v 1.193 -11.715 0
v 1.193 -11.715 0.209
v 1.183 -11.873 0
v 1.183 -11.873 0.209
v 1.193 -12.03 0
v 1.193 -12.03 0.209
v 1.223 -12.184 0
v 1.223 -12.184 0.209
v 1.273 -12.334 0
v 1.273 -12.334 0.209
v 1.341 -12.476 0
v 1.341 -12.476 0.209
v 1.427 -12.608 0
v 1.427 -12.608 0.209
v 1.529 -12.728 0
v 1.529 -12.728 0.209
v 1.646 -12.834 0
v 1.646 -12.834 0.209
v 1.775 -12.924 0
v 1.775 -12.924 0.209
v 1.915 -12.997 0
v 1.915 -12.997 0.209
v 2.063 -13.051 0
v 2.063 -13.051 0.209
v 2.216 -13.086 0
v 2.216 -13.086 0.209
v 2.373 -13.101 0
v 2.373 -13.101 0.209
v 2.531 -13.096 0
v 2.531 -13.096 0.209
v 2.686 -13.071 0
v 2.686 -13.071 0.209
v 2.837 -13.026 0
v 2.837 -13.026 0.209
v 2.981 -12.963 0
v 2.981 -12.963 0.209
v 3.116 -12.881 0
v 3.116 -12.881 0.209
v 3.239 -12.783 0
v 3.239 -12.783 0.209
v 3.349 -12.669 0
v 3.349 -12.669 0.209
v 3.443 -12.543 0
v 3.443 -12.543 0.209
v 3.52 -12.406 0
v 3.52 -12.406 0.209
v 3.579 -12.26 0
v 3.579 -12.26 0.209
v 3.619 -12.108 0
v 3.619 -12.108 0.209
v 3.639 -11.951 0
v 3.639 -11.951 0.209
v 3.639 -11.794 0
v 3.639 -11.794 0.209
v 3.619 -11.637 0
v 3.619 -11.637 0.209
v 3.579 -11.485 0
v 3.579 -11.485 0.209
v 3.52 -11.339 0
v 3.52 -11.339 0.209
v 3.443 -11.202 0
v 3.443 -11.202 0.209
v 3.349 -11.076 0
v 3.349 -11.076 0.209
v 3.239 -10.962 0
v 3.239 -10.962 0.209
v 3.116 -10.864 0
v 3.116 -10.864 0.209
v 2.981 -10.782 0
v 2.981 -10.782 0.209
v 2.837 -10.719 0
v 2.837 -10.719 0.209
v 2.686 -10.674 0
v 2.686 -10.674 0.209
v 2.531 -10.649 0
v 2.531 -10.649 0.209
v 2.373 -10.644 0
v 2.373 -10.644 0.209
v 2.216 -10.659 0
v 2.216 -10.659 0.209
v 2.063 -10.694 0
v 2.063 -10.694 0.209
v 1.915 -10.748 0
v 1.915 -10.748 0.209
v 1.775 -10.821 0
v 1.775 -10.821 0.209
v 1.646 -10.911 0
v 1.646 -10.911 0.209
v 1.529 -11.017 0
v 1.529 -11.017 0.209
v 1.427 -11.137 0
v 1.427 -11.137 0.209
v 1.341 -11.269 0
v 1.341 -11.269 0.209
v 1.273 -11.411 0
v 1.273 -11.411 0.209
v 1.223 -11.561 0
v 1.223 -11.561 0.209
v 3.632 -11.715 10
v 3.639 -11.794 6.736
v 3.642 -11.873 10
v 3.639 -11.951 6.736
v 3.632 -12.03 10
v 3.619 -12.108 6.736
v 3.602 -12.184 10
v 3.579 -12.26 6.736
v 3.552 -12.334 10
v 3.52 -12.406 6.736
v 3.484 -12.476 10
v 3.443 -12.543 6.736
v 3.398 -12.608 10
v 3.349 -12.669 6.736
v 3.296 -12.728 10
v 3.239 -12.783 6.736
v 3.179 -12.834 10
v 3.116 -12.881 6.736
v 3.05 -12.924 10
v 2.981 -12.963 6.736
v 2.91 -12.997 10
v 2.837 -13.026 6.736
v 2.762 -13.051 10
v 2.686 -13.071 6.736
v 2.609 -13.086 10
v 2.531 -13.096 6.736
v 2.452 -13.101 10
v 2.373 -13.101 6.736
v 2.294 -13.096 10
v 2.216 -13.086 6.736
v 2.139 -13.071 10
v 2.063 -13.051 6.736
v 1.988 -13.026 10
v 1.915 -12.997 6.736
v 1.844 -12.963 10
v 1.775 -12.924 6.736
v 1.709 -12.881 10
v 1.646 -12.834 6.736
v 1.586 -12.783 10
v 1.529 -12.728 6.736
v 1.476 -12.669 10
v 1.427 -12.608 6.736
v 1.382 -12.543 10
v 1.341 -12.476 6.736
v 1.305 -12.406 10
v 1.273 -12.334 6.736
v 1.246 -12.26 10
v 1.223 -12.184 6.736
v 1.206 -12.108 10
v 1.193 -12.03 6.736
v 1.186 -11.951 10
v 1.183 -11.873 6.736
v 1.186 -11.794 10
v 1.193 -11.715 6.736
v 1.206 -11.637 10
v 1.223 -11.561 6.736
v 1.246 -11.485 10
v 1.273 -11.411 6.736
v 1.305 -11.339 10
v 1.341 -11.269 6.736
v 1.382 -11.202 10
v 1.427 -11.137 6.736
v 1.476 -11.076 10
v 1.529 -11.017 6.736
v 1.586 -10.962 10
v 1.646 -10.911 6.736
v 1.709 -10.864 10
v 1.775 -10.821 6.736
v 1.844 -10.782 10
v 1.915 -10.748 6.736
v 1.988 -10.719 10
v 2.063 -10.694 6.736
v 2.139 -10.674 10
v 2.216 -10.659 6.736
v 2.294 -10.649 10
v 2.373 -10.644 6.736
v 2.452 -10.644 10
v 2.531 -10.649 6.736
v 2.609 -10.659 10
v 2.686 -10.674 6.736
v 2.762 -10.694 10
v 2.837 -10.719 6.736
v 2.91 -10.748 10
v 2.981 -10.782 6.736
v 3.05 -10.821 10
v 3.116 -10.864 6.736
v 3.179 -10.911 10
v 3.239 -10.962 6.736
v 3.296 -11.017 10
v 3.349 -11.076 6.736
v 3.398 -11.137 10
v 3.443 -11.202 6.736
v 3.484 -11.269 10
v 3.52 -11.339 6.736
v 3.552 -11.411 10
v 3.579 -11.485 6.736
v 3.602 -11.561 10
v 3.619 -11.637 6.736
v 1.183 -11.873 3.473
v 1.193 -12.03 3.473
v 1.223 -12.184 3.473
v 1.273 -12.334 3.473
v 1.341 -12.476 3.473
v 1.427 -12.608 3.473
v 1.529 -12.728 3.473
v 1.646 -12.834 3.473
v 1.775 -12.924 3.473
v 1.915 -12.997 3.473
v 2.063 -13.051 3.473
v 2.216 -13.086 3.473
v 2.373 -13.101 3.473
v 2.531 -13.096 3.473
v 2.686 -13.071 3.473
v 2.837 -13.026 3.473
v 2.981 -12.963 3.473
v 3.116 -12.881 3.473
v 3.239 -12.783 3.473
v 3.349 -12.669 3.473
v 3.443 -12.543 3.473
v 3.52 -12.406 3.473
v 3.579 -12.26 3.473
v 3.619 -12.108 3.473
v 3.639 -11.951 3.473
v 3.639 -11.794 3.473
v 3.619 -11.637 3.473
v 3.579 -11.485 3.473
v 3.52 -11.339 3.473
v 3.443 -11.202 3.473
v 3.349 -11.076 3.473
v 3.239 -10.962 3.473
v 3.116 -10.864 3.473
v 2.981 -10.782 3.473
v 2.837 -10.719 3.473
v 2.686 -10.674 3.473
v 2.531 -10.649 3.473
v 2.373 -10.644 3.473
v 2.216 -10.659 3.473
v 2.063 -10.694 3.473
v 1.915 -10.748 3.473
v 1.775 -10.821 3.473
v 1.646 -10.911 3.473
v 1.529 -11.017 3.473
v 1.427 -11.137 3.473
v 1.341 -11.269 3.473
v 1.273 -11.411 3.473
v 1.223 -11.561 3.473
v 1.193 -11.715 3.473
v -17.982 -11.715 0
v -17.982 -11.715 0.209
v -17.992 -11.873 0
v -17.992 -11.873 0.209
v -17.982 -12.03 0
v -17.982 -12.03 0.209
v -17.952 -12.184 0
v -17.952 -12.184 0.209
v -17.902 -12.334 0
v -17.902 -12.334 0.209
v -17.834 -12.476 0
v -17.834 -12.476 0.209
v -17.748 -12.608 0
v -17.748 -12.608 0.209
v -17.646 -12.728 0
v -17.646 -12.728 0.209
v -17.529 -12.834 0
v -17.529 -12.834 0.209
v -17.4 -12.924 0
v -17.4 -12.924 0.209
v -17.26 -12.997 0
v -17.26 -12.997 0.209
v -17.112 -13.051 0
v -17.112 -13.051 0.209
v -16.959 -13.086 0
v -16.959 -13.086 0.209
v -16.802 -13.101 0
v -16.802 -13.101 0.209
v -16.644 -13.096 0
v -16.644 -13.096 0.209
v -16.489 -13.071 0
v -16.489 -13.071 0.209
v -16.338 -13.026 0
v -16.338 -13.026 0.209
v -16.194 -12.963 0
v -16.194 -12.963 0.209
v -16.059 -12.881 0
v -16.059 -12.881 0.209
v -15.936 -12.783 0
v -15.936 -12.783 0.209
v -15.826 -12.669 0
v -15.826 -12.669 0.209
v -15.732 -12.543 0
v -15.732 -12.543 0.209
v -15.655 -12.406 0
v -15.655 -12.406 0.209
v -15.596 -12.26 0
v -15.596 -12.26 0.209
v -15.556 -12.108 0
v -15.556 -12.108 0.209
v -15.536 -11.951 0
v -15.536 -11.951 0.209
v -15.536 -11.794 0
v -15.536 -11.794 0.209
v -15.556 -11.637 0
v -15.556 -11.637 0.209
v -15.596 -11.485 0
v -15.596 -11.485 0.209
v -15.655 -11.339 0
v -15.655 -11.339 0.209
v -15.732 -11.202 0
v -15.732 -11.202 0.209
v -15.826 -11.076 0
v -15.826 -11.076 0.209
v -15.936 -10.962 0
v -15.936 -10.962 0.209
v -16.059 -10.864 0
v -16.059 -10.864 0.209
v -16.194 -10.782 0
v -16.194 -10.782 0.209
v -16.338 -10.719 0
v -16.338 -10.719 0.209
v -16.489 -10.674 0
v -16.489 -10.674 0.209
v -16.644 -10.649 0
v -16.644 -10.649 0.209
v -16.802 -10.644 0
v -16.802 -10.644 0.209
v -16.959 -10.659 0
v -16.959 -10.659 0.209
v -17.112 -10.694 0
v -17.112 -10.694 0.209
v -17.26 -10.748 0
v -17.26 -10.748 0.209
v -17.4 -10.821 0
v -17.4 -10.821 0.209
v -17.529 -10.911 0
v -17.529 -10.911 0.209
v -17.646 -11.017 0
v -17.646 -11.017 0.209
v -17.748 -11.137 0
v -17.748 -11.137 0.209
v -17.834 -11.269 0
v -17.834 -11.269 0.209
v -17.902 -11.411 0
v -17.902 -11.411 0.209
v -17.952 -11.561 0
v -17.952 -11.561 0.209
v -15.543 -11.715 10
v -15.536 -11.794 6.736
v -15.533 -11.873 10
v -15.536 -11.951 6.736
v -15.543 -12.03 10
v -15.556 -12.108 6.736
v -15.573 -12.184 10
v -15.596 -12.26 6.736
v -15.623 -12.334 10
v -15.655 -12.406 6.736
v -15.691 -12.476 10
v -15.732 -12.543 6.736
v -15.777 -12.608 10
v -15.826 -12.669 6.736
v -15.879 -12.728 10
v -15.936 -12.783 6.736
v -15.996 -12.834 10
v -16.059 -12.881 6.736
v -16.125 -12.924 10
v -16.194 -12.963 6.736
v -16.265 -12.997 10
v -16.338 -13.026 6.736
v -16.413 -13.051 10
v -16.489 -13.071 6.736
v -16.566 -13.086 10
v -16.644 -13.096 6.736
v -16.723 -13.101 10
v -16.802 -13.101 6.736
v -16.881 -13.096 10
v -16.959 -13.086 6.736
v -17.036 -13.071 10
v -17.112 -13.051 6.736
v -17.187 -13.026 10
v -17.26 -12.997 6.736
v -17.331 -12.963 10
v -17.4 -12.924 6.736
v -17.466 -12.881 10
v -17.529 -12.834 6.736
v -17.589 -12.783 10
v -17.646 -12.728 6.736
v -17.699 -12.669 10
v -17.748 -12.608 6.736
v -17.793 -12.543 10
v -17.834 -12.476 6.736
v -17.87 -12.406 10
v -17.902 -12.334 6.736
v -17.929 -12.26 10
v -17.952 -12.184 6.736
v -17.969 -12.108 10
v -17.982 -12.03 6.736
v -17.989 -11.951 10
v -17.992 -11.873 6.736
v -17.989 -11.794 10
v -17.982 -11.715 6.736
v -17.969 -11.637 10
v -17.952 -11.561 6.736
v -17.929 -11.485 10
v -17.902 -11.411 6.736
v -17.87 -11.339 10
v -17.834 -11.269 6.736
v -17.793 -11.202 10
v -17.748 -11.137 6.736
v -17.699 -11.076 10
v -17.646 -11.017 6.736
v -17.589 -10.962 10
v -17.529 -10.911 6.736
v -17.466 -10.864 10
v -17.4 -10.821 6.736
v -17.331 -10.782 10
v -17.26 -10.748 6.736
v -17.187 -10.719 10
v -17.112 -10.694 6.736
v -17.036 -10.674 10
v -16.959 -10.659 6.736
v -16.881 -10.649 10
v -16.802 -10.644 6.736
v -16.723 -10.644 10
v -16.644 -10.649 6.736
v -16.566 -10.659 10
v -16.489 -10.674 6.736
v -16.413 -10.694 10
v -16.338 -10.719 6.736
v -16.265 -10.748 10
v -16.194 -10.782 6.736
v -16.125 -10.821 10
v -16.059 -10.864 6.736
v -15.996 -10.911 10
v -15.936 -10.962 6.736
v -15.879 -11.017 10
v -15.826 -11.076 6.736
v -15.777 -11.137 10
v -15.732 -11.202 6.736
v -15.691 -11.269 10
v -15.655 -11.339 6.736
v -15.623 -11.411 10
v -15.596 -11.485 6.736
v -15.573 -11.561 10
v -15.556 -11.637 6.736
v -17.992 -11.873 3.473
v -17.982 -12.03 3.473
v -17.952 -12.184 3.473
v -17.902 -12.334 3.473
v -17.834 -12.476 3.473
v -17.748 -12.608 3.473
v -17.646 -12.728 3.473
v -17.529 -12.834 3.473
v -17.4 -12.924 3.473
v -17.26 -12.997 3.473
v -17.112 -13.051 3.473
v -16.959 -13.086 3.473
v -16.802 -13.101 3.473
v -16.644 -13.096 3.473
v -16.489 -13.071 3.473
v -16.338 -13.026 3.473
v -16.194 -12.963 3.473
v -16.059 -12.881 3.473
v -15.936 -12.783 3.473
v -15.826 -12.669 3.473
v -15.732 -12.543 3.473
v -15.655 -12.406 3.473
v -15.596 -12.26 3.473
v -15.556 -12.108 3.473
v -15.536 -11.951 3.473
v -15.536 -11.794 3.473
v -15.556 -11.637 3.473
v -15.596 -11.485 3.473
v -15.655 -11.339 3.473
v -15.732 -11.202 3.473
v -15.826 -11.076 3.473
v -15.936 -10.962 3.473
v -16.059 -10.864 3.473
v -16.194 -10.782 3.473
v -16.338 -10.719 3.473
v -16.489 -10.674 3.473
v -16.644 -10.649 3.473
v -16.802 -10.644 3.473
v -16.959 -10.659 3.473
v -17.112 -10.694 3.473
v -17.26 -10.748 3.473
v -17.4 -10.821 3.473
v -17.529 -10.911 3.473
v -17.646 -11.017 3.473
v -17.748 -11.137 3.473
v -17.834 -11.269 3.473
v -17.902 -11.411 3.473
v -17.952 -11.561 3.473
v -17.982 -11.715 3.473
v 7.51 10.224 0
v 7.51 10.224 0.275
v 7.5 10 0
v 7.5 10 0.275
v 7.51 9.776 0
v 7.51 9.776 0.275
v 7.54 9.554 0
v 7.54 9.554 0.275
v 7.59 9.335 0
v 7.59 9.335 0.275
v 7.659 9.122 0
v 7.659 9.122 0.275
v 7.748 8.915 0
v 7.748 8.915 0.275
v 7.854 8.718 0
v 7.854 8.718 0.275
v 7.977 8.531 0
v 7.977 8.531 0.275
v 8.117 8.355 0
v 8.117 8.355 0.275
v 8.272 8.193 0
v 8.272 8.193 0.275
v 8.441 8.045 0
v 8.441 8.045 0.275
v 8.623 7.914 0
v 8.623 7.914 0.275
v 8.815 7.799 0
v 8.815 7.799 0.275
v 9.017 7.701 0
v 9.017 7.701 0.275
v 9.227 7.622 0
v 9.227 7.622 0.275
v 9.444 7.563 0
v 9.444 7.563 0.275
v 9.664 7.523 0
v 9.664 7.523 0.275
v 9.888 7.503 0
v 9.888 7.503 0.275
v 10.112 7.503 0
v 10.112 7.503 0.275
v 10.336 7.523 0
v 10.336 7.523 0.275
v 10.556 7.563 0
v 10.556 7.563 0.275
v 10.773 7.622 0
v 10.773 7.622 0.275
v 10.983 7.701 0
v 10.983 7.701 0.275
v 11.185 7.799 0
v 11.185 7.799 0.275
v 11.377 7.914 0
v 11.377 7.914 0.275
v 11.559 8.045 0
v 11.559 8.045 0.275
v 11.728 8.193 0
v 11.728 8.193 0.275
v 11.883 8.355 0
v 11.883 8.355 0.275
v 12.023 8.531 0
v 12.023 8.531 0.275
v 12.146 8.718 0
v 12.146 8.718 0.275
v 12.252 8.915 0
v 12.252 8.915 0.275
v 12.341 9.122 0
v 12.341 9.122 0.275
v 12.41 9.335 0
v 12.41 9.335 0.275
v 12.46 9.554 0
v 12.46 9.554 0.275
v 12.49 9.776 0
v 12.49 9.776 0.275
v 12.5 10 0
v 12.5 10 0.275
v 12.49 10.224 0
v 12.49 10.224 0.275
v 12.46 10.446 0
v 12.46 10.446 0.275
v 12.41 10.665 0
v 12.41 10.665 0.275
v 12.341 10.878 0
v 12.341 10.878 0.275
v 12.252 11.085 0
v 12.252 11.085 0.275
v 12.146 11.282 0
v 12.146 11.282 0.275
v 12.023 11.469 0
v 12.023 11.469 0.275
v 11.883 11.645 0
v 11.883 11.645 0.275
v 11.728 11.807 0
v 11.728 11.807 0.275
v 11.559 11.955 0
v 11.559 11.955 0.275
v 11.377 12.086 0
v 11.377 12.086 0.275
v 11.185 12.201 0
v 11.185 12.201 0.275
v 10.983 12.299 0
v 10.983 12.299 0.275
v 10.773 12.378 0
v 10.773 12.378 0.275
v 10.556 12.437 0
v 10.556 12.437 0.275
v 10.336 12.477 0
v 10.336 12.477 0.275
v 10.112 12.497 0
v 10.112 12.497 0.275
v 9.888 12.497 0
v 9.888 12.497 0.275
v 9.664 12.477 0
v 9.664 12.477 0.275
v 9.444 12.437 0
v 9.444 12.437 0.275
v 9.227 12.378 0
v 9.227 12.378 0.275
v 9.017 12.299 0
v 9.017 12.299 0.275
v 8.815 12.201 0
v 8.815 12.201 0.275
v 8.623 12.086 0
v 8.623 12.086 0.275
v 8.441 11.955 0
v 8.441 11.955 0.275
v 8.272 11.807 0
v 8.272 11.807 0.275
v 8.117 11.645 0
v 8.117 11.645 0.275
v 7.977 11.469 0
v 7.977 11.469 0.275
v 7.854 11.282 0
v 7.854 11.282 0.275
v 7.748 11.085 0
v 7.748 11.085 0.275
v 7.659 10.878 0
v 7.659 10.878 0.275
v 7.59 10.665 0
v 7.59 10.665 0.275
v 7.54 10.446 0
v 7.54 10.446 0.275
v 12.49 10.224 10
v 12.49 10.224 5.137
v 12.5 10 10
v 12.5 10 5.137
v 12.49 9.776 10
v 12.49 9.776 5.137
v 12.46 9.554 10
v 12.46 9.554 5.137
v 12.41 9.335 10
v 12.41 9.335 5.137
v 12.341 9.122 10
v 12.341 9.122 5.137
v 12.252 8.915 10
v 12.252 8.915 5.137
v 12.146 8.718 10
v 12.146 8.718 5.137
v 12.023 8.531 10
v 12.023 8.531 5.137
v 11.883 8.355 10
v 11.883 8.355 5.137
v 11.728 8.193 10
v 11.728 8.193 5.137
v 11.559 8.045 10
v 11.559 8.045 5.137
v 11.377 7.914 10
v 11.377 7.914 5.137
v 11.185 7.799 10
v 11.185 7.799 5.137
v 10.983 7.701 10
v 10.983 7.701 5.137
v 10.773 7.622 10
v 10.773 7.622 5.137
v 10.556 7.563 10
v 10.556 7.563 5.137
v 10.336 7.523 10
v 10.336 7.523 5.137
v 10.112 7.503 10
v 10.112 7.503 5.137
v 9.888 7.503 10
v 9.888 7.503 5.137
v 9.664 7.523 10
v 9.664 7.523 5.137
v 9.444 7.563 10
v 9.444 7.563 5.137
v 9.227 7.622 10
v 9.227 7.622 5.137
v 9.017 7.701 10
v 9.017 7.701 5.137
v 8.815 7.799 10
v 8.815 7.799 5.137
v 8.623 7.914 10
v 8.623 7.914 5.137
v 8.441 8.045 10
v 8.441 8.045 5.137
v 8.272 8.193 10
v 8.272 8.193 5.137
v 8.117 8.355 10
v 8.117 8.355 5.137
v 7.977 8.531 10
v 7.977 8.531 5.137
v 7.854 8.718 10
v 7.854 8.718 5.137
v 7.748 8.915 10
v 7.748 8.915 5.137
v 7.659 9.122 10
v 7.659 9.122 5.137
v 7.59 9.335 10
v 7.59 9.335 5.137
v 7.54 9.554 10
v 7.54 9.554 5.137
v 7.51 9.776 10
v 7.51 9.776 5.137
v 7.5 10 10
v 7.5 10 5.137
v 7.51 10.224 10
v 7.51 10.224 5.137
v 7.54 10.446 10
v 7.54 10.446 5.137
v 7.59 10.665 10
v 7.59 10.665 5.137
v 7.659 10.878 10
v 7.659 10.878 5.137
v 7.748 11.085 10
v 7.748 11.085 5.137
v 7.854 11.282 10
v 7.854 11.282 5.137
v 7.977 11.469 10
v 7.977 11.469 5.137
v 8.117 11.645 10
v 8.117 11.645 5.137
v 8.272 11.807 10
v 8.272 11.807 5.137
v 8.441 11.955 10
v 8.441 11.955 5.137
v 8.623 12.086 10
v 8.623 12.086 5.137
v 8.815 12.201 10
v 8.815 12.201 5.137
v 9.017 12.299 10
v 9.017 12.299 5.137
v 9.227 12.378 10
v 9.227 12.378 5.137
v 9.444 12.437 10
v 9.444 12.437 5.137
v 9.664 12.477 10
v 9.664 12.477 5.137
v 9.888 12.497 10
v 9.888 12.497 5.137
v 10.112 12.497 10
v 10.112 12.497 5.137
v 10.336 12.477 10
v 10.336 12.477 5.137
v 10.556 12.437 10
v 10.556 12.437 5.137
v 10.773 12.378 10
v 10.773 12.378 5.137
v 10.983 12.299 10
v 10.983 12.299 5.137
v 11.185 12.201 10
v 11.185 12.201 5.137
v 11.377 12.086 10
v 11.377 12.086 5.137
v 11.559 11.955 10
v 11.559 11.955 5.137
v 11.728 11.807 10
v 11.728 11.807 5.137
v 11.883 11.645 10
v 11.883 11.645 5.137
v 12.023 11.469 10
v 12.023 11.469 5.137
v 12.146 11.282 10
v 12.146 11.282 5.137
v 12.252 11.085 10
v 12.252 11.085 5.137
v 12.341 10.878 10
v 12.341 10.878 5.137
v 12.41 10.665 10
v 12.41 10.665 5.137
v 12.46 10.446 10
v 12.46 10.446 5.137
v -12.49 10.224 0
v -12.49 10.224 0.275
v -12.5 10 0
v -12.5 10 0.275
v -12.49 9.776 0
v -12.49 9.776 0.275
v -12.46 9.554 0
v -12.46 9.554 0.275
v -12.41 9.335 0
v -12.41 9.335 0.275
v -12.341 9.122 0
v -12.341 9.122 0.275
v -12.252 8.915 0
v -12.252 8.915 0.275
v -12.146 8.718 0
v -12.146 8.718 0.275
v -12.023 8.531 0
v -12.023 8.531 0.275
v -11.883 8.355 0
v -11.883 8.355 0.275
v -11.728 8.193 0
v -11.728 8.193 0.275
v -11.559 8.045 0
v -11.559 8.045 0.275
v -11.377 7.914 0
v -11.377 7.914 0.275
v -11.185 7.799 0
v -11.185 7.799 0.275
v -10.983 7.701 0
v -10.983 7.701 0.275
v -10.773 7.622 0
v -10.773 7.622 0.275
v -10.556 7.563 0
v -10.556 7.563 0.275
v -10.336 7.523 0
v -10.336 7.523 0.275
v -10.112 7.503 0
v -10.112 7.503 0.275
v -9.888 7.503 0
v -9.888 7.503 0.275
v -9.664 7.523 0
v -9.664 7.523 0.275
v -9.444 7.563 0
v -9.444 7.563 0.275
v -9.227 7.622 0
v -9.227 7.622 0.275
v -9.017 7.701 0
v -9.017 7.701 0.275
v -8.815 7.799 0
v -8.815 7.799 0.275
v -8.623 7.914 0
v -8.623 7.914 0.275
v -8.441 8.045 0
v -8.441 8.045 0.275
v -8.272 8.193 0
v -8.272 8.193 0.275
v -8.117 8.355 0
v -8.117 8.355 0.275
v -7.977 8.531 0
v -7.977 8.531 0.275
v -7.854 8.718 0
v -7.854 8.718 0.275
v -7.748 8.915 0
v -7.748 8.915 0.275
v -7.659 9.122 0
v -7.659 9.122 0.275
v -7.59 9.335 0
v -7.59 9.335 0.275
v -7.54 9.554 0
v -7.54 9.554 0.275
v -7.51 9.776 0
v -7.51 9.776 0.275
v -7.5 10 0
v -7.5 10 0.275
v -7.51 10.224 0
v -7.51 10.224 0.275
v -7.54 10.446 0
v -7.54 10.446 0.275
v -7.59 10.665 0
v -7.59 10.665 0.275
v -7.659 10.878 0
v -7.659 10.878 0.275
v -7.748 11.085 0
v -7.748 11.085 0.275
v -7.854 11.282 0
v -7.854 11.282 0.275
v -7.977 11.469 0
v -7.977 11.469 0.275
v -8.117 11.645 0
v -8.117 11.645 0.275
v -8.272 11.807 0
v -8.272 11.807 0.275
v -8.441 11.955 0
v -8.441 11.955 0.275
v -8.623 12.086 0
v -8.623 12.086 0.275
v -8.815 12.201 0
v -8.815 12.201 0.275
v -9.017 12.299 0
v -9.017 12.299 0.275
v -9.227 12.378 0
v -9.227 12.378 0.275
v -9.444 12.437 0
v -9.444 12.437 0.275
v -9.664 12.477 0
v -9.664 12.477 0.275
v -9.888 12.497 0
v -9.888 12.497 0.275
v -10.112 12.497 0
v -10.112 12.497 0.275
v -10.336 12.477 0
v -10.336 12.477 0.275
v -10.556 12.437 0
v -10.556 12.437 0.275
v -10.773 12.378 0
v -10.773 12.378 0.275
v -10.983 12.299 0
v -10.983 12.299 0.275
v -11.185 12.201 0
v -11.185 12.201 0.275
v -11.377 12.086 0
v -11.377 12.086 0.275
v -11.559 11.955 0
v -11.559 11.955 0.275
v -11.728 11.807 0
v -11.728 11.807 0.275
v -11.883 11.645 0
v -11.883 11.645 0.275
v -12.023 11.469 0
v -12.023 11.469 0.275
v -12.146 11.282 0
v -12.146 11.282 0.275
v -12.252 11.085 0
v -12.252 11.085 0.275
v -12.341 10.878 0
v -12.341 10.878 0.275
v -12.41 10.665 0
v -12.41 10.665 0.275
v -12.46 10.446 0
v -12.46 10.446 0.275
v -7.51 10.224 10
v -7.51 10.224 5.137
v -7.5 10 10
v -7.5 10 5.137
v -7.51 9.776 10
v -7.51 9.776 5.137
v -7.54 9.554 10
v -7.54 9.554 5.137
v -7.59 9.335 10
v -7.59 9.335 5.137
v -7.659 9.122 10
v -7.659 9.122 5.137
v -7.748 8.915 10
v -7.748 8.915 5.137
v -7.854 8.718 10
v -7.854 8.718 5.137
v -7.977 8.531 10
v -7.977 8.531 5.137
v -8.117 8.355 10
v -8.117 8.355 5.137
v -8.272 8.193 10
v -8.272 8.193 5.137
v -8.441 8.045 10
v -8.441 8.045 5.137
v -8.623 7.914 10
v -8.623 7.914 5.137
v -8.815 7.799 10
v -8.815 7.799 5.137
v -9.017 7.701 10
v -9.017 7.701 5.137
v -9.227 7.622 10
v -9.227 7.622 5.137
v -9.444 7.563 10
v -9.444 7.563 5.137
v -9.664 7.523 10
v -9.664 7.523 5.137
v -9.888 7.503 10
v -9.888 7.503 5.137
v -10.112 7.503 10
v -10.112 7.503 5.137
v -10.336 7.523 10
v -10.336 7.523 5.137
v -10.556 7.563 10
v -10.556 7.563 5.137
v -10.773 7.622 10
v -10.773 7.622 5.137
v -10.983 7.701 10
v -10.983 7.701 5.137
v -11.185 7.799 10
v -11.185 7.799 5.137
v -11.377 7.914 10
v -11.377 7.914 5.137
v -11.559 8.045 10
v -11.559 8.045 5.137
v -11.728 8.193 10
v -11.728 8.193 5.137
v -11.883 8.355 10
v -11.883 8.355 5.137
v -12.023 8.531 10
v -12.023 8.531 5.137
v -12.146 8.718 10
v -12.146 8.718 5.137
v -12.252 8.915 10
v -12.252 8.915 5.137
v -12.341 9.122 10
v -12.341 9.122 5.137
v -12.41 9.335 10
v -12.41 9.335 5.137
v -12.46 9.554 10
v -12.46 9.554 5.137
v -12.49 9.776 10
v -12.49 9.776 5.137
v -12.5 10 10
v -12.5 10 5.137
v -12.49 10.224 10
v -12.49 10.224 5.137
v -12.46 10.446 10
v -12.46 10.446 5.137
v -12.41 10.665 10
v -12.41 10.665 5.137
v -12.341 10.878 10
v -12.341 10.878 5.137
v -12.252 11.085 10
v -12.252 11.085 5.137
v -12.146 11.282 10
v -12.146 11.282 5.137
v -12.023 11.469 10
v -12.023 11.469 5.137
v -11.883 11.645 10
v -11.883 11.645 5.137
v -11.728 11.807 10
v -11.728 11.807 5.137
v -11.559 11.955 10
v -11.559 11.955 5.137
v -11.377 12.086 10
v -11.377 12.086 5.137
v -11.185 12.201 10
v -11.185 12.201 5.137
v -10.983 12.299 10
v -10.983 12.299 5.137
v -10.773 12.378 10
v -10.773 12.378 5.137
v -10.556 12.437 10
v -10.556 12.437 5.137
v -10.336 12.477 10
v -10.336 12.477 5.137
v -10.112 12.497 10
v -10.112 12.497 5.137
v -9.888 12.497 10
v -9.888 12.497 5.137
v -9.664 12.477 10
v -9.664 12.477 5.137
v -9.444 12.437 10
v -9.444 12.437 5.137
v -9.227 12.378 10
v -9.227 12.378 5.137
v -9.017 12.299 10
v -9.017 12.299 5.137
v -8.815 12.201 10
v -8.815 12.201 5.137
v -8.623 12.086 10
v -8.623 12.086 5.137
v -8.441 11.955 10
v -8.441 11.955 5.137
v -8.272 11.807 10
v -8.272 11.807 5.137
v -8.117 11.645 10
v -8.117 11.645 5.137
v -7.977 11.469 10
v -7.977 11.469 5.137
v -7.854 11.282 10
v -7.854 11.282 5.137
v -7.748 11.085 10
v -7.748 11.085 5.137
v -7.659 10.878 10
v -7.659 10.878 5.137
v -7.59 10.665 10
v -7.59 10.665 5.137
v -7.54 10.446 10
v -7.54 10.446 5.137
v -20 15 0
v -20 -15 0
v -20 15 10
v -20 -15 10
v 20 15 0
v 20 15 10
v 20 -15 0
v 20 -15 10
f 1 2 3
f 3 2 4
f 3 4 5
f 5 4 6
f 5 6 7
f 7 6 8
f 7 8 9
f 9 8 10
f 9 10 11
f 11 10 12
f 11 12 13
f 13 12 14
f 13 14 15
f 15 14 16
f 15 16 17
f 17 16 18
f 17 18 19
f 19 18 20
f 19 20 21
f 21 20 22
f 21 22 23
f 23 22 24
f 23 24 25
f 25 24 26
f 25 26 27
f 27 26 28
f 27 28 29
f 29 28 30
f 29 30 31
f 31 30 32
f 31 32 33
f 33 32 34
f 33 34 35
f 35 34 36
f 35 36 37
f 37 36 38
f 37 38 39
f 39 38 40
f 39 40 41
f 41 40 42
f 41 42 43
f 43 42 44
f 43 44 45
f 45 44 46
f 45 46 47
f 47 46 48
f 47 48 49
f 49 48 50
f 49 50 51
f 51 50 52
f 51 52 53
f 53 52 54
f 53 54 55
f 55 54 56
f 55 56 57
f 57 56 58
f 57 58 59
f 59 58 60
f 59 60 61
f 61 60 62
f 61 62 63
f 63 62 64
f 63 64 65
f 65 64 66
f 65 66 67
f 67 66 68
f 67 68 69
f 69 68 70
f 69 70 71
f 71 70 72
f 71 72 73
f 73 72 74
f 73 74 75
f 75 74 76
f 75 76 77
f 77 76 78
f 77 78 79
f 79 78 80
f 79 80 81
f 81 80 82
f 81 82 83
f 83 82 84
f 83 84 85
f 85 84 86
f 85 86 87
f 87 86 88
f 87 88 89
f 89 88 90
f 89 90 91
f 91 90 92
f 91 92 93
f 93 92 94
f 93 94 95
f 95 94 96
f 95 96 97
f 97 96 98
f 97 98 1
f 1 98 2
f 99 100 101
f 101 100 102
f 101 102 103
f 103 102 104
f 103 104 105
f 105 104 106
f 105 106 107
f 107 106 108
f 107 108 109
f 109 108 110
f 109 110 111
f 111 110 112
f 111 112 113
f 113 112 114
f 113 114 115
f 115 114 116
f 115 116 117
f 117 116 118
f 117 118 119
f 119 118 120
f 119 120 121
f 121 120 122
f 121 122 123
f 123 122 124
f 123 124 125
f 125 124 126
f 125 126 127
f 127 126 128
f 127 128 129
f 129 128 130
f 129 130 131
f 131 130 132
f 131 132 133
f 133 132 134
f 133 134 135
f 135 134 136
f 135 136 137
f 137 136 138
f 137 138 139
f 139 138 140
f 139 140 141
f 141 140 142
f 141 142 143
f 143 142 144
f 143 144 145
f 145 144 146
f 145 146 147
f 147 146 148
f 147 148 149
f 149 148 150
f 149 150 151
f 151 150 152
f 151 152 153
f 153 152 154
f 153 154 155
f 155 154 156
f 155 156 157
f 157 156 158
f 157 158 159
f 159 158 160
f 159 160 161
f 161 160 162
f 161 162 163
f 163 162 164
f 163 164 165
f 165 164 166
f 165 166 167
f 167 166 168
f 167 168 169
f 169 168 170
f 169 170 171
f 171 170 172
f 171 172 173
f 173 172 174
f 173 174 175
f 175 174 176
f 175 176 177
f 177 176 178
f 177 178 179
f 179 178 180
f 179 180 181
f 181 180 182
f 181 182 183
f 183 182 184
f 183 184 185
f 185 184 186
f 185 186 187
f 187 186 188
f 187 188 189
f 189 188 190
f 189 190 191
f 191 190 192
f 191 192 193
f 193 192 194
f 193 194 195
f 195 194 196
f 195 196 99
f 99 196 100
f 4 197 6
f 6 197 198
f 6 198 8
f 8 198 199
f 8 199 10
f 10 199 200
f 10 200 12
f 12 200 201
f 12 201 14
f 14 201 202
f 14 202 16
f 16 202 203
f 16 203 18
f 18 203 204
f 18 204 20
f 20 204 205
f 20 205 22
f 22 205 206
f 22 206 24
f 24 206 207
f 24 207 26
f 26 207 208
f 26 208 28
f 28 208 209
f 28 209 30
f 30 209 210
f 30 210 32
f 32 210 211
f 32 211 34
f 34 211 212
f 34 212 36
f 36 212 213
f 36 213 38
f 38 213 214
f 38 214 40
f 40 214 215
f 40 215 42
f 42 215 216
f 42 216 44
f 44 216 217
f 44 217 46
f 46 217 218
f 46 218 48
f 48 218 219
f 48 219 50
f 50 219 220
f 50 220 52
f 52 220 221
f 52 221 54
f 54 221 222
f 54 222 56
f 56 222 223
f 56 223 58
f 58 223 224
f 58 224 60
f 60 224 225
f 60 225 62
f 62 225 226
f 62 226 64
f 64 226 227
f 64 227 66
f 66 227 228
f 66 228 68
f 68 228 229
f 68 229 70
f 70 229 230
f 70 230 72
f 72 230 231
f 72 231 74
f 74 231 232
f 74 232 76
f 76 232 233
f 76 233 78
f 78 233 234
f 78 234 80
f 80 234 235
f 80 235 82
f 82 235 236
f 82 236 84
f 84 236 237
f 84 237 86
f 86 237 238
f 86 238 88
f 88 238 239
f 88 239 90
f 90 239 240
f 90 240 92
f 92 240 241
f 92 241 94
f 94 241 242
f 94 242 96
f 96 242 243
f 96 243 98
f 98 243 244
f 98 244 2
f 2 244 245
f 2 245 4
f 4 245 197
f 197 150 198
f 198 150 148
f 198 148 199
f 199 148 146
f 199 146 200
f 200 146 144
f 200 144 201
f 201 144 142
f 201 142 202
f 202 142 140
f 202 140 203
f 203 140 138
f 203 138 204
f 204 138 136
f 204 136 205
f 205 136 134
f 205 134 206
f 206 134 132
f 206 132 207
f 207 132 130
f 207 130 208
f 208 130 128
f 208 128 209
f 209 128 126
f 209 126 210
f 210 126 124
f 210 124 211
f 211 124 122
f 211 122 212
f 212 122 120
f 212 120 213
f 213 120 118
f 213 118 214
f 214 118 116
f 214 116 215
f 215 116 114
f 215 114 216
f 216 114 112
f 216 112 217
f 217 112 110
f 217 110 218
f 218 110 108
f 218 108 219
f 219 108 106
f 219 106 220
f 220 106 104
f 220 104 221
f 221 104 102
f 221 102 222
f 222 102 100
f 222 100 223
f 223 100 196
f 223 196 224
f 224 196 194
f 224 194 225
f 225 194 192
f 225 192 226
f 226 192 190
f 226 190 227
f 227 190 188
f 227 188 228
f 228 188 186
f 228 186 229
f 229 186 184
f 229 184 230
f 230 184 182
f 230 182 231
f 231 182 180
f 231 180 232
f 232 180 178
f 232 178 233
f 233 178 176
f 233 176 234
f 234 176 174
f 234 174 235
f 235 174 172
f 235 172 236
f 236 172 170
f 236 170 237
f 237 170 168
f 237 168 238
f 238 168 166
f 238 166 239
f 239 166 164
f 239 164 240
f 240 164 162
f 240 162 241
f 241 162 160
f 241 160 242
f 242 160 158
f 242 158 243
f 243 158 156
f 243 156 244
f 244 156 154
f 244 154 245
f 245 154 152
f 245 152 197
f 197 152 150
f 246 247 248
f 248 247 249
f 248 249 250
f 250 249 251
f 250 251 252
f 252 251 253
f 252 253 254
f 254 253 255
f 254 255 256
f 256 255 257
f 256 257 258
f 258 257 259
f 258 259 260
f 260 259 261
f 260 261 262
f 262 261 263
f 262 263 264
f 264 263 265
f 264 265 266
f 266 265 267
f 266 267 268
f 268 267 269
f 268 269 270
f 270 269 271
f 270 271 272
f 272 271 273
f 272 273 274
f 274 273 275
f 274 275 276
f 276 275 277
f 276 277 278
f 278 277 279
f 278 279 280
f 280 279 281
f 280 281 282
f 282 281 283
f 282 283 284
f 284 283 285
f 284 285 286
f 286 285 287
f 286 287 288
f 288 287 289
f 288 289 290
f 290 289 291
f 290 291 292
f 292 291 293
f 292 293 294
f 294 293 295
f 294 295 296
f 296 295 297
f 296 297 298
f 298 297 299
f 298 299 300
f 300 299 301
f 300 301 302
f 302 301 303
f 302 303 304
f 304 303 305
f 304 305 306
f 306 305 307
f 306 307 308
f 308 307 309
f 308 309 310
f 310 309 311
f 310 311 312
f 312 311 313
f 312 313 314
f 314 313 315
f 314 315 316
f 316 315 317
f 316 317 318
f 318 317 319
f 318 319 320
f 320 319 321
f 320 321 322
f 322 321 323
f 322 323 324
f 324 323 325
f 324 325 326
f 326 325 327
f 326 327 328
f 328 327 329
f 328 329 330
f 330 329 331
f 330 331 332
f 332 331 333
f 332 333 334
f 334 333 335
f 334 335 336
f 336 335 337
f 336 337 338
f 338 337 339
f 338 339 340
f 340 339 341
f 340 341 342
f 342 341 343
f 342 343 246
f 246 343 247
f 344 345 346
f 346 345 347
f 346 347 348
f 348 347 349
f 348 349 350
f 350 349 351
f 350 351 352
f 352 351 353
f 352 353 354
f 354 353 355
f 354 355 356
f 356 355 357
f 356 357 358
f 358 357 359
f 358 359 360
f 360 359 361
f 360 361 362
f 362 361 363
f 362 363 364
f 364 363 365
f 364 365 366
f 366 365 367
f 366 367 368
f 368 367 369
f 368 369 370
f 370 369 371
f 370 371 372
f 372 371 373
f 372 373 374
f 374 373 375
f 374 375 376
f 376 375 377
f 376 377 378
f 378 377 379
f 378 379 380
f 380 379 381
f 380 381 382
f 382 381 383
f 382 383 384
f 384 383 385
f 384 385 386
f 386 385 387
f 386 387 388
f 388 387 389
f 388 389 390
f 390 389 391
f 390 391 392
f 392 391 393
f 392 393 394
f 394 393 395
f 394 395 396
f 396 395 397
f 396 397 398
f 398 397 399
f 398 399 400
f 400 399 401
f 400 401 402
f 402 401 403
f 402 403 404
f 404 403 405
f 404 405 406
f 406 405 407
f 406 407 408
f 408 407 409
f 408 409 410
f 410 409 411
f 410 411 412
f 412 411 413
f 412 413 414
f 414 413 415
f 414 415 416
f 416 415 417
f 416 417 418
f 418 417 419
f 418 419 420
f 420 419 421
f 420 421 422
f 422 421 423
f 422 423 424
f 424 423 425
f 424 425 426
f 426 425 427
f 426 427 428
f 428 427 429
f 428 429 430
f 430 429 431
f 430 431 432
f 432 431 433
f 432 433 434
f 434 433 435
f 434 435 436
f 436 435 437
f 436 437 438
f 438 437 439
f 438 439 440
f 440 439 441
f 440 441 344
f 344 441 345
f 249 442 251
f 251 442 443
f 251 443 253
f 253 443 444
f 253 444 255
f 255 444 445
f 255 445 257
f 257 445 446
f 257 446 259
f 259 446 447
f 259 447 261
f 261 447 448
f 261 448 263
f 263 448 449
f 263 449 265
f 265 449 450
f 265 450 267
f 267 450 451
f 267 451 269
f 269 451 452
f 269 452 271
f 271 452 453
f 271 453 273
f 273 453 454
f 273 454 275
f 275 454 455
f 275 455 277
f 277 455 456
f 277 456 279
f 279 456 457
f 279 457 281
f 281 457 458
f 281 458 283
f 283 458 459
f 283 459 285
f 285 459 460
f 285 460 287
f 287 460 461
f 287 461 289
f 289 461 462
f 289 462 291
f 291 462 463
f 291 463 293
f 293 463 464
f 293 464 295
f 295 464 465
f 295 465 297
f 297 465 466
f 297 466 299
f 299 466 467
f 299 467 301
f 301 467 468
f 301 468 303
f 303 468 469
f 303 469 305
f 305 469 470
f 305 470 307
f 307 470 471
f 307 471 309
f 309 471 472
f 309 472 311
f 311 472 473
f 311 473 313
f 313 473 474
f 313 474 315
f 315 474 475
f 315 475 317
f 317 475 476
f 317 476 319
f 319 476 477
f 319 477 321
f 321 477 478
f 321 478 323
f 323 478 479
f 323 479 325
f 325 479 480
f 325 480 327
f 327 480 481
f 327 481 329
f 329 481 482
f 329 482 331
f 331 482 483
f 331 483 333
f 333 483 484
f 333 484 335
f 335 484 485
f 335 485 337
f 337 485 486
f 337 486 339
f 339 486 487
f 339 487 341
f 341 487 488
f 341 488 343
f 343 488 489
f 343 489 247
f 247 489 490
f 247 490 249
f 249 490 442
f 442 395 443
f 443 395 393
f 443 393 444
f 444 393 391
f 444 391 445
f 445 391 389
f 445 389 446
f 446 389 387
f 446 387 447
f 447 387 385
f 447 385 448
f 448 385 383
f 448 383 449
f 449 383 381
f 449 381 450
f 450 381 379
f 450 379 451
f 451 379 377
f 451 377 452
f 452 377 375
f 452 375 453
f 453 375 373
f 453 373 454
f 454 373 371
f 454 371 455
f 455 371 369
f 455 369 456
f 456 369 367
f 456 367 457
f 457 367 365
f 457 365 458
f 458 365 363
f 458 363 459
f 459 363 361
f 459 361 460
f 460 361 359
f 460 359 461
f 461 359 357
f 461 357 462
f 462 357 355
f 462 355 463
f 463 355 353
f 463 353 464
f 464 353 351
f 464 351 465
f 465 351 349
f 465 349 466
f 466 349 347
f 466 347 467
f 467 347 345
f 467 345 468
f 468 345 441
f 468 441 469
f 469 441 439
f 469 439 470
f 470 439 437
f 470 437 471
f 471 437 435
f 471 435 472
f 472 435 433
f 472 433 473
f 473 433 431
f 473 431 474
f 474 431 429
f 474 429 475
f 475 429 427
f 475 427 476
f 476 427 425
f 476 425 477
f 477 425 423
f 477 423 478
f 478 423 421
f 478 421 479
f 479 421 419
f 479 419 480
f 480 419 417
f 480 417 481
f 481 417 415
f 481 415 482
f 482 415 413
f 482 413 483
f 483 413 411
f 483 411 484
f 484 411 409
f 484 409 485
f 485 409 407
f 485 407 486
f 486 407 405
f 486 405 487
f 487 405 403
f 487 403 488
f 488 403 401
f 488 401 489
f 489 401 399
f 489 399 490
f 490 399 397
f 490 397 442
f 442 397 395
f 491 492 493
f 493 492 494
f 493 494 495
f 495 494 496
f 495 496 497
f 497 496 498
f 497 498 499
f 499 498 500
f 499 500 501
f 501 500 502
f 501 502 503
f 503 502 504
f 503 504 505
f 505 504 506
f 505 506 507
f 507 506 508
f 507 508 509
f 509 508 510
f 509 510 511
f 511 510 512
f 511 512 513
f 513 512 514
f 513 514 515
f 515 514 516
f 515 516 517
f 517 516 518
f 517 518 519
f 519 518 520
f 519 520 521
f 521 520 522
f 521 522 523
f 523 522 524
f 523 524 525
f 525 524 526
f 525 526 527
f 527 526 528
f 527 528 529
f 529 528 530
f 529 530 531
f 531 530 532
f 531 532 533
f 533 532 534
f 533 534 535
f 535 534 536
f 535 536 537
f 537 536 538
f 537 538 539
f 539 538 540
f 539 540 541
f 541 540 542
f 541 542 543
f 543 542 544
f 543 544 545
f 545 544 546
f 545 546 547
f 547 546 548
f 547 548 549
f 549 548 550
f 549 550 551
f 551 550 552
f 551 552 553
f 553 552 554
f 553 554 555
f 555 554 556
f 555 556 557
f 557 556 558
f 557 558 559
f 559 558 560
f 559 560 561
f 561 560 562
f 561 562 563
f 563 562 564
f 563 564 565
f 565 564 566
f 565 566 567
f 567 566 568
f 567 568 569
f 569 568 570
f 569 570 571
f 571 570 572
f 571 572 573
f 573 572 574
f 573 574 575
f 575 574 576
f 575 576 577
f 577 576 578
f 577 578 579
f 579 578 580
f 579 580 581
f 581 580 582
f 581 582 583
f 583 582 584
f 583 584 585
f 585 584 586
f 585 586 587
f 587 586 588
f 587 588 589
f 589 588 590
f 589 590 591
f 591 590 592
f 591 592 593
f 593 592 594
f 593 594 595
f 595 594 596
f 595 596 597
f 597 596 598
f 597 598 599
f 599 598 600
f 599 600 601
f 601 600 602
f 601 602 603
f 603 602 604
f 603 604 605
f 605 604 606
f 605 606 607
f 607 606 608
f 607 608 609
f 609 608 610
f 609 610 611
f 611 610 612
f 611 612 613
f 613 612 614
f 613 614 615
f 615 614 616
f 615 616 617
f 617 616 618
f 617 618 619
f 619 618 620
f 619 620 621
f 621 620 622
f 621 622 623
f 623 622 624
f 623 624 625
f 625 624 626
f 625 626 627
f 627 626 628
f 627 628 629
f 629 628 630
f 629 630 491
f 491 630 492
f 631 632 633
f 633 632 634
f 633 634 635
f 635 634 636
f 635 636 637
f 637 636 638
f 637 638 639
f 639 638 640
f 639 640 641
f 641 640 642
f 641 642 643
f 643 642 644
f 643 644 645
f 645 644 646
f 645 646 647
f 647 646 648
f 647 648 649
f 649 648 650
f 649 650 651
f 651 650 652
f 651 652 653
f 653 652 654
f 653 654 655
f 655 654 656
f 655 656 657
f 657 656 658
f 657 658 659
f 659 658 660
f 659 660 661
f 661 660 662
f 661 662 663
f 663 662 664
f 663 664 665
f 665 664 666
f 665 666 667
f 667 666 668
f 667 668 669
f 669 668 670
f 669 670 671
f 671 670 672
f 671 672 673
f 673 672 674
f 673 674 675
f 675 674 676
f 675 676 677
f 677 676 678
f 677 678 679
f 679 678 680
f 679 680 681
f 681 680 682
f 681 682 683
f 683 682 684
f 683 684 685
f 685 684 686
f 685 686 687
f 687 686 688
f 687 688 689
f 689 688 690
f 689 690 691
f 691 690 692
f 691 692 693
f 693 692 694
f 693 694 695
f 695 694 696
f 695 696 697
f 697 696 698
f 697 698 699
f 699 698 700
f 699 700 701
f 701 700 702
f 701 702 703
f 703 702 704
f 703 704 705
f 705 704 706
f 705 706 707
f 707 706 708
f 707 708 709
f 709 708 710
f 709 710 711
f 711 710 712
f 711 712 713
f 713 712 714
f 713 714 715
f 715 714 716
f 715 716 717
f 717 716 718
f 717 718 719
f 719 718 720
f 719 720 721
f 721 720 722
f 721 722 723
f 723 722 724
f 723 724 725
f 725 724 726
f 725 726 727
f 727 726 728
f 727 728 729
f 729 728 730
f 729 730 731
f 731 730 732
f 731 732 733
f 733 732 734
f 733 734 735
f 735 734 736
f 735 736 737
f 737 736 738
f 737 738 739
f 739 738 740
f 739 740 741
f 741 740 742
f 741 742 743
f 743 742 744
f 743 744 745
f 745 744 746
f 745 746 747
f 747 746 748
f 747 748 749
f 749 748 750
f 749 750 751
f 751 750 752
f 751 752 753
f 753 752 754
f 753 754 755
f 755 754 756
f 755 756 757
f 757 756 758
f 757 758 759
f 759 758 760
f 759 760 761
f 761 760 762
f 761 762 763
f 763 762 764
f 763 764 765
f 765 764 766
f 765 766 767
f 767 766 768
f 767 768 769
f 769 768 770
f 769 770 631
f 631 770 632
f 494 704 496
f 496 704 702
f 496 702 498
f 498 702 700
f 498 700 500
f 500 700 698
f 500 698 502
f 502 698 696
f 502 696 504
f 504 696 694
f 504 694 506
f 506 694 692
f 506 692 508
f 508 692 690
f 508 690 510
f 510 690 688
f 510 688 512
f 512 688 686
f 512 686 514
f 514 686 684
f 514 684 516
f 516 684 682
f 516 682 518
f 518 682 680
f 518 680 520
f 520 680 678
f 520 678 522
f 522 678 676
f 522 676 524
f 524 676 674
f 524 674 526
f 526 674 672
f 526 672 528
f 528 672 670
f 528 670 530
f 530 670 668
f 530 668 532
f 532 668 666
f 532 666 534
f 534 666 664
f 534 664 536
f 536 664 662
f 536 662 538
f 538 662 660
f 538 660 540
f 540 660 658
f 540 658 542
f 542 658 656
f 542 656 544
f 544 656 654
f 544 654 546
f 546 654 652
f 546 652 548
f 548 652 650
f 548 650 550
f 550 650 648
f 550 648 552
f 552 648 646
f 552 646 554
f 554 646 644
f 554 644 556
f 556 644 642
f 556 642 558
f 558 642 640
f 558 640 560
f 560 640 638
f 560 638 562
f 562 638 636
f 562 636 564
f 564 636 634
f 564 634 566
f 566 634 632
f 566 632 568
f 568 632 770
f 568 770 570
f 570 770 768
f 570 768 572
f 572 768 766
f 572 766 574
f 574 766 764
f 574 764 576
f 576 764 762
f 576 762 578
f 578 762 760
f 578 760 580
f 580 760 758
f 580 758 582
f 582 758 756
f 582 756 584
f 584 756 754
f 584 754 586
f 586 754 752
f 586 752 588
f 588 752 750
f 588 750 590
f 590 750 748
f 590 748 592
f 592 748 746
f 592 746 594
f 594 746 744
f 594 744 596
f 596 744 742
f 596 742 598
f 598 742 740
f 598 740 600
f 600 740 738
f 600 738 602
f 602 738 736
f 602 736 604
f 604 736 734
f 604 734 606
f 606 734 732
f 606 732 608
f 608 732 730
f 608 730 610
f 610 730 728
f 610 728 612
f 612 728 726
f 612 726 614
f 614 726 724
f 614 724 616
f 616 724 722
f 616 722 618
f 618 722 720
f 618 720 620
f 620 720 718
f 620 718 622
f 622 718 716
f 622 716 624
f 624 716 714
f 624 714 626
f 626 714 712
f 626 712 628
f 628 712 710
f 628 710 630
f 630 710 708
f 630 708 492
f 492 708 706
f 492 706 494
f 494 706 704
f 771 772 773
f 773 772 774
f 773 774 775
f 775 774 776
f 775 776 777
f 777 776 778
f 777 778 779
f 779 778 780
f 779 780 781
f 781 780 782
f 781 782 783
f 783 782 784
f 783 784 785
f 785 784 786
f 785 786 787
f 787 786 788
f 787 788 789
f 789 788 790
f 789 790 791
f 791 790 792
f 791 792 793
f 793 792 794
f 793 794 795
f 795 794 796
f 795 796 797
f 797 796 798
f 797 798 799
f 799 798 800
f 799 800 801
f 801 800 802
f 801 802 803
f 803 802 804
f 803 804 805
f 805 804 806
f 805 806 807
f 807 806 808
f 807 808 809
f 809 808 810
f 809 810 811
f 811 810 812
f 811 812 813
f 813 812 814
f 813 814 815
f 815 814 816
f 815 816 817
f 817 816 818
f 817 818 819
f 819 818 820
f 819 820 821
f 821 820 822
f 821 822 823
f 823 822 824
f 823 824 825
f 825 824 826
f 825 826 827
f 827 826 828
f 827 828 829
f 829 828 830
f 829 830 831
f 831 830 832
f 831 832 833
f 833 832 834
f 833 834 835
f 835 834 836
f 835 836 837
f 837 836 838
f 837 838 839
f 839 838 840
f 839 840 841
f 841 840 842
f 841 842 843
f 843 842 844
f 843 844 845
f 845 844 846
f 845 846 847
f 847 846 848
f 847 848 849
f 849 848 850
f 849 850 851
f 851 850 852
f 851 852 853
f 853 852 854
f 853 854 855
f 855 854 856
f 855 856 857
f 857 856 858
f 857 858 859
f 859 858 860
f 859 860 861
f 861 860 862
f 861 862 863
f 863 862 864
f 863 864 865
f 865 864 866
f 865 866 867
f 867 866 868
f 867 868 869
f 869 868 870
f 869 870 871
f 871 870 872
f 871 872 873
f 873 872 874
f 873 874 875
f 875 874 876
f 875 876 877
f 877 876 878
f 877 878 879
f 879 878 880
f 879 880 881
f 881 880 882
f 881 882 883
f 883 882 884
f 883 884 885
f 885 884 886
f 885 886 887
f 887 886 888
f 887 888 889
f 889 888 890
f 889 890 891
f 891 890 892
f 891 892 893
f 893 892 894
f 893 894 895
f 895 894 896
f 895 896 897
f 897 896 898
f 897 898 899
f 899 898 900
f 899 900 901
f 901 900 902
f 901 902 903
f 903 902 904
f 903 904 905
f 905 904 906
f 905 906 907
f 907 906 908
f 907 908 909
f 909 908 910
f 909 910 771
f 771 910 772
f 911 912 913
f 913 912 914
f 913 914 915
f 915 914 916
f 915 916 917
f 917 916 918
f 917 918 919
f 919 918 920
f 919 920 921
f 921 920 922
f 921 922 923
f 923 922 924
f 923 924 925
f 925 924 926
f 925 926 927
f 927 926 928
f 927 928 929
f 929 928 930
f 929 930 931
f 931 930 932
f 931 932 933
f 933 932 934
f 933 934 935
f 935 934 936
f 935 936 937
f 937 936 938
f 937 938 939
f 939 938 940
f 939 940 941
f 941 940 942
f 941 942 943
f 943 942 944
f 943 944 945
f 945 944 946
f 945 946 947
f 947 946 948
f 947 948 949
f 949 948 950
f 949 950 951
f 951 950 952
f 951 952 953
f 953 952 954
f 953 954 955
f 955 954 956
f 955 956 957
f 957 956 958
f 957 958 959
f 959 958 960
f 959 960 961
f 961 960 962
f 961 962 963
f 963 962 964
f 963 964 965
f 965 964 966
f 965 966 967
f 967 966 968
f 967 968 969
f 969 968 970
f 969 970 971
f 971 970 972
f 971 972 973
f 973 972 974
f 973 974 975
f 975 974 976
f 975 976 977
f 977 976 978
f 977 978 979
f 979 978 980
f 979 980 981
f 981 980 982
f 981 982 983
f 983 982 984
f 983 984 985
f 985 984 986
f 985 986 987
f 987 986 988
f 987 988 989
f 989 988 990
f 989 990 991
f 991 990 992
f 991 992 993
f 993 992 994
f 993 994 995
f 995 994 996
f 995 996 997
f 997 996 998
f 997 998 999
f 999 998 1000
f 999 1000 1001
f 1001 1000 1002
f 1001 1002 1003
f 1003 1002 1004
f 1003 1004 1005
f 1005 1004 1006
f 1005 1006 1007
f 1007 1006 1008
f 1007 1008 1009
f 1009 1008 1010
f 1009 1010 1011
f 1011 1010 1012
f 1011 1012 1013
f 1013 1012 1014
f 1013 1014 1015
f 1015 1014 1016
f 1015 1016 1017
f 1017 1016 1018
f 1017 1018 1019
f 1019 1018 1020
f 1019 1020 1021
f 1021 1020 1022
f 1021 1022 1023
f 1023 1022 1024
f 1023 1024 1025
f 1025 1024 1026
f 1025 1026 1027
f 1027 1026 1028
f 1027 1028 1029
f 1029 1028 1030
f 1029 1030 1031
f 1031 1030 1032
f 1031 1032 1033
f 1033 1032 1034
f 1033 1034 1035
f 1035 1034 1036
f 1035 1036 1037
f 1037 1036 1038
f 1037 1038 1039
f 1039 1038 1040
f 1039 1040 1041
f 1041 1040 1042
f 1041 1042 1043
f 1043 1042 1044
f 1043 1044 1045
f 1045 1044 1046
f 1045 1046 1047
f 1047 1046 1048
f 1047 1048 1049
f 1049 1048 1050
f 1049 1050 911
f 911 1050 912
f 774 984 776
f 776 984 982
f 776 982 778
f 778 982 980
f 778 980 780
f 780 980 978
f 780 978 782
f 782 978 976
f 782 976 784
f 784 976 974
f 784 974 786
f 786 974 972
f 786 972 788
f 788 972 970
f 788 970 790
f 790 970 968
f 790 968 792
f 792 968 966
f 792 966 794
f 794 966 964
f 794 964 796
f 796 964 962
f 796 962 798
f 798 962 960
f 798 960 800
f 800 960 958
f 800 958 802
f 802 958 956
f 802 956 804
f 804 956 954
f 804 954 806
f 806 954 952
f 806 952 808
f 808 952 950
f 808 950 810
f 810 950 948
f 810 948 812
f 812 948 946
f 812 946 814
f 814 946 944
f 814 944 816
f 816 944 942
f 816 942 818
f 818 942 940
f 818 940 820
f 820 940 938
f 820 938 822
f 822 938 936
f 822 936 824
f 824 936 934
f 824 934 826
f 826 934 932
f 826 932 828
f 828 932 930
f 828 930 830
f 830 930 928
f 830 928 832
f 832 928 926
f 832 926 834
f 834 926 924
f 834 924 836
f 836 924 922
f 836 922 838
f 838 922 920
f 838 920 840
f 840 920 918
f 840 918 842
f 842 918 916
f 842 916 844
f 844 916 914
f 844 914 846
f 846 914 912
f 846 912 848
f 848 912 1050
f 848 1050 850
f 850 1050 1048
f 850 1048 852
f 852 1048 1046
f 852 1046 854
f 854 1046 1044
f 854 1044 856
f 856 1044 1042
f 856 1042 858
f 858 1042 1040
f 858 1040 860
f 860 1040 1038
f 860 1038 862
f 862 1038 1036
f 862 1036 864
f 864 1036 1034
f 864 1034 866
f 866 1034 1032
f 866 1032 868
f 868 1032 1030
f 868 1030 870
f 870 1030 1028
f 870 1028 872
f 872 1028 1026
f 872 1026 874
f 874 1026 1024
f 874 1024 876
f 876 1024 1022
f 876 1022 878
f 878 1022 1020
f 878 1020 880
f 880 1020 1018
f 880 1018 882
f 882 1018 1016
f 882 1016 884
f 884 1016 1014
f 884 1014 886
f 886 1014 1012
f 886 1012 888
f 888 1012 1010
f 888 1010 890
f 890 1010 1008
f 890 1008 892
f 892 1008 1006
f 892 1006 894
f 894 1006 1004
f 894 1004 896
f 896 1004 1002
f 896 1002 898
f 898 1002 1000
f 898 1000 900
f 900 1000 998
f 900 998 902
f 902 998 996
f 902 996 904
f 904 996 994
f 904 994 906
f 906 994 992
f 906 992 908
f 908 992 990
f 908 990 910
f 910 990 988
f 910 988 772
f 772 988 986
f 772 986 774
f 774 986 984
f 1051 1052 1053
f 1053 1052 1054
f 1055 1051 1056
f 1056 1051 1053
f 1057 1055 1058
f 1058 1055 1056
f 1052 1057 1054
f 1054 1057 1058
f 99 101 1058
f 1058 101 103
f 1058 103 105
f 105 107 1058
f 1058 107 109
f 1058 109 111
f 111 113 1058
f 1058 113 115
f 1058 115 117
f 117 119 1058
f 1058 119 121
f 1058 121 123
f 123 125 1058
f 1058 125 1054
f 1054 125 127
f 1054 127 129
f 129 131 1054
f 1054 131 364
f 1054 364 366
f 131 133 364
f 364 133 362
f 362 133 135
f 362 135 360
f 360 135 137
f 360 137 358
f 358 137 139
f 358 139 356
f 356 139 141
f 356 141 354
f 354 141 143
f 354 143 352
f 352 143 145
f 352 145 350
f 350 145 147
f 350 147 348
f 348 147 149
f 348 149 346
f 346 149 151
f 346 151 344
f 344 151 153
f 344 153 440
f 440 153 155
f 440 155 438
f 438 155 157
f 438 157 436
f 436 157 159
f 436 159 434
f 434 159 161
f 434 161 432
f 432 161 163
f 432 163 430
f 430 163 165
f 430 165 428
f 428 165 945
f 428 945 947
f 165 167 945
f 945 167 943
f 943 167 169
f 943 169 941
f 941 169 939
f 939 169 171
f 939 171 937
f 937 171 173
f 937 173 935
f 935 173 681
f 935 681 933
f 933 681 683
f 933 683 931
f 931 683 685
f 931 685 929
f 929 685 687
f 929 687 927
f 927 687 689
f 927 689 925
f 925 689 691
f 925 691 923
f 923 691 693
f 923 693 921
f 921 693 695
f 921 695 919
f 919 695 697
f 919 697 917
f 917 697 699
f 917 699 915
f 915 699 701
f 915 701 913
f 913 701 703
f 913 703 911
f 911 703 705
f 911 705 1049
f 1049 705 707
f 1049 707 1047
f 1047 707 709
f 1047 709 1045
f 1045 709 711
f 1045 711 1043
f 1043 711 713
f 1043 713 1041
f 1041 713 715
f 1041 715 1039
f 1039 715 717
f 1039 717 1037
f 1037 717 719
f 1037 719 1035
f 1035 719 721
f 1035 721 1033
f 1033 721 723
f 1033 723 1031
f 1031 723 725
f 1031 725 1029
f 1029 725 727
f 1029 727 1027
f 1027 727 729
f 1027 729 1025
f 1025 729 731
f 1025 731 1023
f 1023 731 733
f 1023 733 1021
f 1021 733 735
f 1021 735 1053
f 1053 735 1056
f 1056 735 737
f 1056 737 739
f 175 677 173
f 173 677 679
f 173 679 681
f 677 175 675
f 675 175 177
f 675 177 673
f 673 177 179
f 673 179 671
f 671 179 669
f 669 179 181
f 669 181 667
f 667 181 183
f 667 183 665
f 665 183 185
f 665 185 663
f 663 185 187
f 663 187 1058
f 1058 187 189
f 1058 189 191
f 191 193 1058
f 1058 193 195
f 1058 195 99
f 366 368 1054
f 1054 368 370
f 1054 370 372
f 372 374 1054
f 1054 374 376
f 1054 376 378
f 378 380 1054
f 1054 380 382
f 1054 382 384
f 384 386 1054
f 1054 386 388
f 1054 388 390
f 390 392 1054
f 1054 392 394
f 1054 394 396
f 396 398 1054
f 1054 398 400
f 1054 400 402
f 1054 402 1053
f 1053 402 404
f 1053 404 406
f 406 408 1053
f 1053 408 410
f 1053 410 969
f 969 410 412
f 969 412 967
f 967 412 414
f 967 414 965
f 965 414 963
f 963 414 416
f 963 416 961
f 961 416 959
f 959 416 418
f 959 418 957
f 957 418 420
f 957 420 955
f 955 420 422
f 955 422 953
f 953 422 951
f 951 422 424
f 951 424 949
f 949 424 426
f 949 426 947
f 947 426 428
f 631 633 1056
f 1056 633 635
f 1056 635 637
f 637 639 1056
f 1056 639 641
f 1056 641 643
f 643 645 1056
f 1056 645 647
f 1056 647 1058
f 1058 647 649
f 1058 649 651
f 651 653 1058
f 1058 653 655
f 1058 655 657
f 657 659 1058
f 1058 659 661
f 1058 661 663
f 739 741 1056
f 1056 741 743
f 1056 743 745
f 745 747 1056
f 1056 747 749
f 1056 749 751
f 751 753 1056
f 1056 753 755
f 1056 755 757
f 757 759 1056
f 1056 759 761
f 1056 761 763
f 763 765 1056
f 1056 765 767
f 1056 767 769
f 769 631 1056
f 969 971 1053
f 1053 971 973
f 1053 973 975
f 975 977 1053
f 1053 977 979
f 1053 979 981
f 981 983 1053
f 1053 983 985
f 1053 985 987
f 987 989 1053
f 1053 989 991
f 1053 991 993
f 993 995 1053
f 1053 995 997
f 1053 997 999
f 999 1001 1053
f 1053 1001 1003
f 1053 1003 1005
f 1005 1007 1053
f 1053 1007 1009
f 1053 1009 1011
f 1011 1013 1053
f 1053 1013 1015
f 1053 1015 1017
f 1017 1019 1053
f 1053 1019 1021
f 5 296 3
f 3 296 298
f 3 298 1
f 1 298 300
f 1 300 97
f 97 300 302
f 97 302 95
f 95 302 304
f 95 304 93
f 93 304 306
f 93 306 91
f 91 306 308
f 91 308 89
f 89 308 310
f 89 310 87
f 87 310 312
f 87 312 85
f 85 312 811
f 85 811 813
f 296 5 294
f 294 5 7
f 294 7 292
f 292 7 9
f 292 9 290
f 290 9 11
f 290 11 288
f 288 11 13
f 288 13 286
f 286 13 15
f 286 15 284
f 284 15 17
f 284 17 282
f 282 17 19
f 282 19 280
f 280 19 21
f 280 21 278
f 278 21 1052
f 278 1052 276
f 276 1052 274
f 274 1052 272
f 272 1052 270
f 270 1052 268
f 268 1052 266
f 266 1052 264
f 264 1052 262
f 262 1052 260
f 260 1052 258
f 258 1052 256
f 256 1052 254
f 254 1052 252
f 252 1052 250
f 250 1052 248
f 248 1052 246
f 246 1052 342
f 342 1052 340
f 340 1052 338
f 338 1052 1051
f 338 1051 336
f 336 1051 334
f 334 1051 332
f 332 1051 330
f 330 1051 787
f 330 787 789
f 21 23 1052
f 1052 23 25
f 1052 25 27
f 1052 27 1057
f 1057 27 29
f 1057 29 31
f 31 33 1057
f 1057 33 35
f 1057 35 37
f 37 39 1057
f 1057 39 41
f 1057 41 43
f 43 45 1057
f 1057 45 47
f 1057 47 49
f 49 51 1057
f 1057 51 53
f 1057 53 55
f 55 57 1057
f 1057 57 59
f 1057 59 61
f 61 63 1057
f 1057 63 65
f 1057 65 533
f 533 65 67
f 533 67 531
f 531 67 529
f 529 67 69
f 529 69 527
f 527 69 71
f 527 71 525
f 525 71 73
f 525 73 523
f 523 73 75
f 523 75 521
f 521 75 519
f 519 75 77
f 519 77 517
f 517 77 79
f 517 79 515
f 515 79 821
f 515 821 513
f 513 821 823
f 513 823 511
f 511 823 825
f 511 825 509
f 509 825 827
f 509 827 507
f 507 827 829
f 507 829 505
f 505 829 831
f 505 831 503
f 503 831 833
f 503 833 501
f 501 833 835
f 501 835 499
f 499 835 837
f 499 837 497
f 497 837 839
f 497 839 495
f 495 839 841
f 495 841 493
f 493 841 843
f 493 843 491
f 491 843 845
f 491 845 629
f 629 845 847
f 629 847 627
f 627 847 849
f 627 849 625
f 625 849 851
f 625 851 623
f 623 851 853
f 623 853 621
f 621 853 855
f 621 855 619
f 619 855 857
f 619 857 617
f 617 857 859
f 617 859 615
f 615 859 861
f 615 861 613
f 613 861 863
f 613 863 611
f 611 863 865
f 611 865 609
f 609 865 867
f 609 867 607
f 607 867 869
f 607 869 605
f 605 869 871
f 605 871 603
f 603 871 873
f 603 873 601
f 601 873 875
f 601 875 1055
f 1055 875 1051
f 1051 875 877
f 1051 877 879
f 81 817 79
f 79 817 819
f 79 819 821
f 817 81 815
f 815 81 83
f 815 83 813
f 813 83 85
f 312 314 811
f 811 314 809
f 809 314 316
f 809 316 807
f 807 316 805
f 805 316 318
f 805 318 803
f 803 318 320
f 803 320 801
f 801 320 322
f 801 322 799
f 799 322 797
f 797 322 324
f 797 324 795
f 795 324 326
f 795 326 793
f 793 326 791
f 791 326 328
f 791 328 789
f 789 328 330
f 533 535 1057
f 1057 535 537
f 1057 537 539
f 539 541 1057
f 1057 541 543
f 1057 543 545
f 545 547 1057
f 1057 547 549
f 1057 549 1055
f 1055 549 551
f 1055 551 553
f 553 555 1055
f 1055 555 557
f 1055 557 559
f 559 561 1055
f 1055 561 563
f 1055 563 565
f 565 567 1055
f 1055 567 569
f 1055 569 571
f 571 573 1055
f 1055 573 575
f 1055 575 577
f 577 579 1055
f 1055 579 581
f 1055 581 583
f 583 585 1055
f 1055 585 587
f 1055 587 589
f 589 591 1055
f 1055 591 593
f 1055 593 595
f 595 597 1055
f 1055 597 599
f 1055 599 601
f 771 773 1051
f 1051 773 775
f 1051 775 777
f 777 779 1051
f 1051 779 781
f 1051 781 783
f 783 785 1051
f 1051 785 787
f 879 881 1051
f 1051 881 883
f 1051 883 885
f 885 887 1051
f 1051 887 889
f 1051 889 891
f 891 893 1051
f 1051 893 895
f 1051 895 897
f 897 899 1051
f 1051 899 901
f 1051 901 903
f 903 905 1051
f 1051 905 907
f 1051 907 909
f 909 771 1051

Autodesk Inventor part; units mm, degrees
ref_plane "YZ Plane" through (0, 0, 0) normal (1, 0, 0) x (0, 1, 0)
ref_plane "XZ Plane" through (0, 0, 0) normal (0, 1, 0) x (-1, 0, 0)
ref_plane "XY Plane" through (0, 0, 0) normal (0, 0, 1) x (1, 0, 0)
sketch "Sketch1" plane through (0, 0, 0) normal (0, 0, 1) x (1, 0, 0)
  line L0 (-20, 15) -> (20, 15)
  line L1 (20, 15) -> (20, -15)
  line L2 (20, -15) -> (-20, -15)
  line L3 (-20, -15) -> (-20, 15)
  point P0 (0, 0)
  point P1 (0, 15)
  point P2 (-20, 0)
  dimension "d0" = 40
  dimension "d1" = 30
extrude "Extrusion1" add sketch "Sketch1" along normal blind 10
sketch "Sketch2" plane through (0, 0, 10) normal (0, 0, 1) x (1, 0, 0)
  line L0 (20, 15) -> (-20, 15) projected
  line L1 (20, -15) -> (20, 15) projected
  line L2 (-20, 15) -> (-20, -15) projected
  point P0 (0, 0)
  point P1 (10, 10)
  point P2 (-10, 10)
  dimension "d4" = 5
  dimension "d5" = 10
  dimension "d6" = 10
hole "Hole1" at (10, 10, 10) at (-10, 10, 10) direction (0, 0, -1) diameter 5 end through all
sketch "Sketch3" plane through (0, 0, 10) normal (0, 0, 1) x (1, 0, 0)
  circle A0 centre (2.4125, -11.8725) radius 1.7875 projected
  circle A1 centre (-16.7625, -11.8725) radius 1.7875 projected
  point P0 (0, 0)
hole "Hole2" at (2.4125, -11.8725, 10) at (-16.7625, -11.8725, 10) direction (0, 0, -1) diameter 2.459 end through all thread size "M3x0.5" class "6H" standard "ISO Metric profile"
properties part number "0008-10-056"
